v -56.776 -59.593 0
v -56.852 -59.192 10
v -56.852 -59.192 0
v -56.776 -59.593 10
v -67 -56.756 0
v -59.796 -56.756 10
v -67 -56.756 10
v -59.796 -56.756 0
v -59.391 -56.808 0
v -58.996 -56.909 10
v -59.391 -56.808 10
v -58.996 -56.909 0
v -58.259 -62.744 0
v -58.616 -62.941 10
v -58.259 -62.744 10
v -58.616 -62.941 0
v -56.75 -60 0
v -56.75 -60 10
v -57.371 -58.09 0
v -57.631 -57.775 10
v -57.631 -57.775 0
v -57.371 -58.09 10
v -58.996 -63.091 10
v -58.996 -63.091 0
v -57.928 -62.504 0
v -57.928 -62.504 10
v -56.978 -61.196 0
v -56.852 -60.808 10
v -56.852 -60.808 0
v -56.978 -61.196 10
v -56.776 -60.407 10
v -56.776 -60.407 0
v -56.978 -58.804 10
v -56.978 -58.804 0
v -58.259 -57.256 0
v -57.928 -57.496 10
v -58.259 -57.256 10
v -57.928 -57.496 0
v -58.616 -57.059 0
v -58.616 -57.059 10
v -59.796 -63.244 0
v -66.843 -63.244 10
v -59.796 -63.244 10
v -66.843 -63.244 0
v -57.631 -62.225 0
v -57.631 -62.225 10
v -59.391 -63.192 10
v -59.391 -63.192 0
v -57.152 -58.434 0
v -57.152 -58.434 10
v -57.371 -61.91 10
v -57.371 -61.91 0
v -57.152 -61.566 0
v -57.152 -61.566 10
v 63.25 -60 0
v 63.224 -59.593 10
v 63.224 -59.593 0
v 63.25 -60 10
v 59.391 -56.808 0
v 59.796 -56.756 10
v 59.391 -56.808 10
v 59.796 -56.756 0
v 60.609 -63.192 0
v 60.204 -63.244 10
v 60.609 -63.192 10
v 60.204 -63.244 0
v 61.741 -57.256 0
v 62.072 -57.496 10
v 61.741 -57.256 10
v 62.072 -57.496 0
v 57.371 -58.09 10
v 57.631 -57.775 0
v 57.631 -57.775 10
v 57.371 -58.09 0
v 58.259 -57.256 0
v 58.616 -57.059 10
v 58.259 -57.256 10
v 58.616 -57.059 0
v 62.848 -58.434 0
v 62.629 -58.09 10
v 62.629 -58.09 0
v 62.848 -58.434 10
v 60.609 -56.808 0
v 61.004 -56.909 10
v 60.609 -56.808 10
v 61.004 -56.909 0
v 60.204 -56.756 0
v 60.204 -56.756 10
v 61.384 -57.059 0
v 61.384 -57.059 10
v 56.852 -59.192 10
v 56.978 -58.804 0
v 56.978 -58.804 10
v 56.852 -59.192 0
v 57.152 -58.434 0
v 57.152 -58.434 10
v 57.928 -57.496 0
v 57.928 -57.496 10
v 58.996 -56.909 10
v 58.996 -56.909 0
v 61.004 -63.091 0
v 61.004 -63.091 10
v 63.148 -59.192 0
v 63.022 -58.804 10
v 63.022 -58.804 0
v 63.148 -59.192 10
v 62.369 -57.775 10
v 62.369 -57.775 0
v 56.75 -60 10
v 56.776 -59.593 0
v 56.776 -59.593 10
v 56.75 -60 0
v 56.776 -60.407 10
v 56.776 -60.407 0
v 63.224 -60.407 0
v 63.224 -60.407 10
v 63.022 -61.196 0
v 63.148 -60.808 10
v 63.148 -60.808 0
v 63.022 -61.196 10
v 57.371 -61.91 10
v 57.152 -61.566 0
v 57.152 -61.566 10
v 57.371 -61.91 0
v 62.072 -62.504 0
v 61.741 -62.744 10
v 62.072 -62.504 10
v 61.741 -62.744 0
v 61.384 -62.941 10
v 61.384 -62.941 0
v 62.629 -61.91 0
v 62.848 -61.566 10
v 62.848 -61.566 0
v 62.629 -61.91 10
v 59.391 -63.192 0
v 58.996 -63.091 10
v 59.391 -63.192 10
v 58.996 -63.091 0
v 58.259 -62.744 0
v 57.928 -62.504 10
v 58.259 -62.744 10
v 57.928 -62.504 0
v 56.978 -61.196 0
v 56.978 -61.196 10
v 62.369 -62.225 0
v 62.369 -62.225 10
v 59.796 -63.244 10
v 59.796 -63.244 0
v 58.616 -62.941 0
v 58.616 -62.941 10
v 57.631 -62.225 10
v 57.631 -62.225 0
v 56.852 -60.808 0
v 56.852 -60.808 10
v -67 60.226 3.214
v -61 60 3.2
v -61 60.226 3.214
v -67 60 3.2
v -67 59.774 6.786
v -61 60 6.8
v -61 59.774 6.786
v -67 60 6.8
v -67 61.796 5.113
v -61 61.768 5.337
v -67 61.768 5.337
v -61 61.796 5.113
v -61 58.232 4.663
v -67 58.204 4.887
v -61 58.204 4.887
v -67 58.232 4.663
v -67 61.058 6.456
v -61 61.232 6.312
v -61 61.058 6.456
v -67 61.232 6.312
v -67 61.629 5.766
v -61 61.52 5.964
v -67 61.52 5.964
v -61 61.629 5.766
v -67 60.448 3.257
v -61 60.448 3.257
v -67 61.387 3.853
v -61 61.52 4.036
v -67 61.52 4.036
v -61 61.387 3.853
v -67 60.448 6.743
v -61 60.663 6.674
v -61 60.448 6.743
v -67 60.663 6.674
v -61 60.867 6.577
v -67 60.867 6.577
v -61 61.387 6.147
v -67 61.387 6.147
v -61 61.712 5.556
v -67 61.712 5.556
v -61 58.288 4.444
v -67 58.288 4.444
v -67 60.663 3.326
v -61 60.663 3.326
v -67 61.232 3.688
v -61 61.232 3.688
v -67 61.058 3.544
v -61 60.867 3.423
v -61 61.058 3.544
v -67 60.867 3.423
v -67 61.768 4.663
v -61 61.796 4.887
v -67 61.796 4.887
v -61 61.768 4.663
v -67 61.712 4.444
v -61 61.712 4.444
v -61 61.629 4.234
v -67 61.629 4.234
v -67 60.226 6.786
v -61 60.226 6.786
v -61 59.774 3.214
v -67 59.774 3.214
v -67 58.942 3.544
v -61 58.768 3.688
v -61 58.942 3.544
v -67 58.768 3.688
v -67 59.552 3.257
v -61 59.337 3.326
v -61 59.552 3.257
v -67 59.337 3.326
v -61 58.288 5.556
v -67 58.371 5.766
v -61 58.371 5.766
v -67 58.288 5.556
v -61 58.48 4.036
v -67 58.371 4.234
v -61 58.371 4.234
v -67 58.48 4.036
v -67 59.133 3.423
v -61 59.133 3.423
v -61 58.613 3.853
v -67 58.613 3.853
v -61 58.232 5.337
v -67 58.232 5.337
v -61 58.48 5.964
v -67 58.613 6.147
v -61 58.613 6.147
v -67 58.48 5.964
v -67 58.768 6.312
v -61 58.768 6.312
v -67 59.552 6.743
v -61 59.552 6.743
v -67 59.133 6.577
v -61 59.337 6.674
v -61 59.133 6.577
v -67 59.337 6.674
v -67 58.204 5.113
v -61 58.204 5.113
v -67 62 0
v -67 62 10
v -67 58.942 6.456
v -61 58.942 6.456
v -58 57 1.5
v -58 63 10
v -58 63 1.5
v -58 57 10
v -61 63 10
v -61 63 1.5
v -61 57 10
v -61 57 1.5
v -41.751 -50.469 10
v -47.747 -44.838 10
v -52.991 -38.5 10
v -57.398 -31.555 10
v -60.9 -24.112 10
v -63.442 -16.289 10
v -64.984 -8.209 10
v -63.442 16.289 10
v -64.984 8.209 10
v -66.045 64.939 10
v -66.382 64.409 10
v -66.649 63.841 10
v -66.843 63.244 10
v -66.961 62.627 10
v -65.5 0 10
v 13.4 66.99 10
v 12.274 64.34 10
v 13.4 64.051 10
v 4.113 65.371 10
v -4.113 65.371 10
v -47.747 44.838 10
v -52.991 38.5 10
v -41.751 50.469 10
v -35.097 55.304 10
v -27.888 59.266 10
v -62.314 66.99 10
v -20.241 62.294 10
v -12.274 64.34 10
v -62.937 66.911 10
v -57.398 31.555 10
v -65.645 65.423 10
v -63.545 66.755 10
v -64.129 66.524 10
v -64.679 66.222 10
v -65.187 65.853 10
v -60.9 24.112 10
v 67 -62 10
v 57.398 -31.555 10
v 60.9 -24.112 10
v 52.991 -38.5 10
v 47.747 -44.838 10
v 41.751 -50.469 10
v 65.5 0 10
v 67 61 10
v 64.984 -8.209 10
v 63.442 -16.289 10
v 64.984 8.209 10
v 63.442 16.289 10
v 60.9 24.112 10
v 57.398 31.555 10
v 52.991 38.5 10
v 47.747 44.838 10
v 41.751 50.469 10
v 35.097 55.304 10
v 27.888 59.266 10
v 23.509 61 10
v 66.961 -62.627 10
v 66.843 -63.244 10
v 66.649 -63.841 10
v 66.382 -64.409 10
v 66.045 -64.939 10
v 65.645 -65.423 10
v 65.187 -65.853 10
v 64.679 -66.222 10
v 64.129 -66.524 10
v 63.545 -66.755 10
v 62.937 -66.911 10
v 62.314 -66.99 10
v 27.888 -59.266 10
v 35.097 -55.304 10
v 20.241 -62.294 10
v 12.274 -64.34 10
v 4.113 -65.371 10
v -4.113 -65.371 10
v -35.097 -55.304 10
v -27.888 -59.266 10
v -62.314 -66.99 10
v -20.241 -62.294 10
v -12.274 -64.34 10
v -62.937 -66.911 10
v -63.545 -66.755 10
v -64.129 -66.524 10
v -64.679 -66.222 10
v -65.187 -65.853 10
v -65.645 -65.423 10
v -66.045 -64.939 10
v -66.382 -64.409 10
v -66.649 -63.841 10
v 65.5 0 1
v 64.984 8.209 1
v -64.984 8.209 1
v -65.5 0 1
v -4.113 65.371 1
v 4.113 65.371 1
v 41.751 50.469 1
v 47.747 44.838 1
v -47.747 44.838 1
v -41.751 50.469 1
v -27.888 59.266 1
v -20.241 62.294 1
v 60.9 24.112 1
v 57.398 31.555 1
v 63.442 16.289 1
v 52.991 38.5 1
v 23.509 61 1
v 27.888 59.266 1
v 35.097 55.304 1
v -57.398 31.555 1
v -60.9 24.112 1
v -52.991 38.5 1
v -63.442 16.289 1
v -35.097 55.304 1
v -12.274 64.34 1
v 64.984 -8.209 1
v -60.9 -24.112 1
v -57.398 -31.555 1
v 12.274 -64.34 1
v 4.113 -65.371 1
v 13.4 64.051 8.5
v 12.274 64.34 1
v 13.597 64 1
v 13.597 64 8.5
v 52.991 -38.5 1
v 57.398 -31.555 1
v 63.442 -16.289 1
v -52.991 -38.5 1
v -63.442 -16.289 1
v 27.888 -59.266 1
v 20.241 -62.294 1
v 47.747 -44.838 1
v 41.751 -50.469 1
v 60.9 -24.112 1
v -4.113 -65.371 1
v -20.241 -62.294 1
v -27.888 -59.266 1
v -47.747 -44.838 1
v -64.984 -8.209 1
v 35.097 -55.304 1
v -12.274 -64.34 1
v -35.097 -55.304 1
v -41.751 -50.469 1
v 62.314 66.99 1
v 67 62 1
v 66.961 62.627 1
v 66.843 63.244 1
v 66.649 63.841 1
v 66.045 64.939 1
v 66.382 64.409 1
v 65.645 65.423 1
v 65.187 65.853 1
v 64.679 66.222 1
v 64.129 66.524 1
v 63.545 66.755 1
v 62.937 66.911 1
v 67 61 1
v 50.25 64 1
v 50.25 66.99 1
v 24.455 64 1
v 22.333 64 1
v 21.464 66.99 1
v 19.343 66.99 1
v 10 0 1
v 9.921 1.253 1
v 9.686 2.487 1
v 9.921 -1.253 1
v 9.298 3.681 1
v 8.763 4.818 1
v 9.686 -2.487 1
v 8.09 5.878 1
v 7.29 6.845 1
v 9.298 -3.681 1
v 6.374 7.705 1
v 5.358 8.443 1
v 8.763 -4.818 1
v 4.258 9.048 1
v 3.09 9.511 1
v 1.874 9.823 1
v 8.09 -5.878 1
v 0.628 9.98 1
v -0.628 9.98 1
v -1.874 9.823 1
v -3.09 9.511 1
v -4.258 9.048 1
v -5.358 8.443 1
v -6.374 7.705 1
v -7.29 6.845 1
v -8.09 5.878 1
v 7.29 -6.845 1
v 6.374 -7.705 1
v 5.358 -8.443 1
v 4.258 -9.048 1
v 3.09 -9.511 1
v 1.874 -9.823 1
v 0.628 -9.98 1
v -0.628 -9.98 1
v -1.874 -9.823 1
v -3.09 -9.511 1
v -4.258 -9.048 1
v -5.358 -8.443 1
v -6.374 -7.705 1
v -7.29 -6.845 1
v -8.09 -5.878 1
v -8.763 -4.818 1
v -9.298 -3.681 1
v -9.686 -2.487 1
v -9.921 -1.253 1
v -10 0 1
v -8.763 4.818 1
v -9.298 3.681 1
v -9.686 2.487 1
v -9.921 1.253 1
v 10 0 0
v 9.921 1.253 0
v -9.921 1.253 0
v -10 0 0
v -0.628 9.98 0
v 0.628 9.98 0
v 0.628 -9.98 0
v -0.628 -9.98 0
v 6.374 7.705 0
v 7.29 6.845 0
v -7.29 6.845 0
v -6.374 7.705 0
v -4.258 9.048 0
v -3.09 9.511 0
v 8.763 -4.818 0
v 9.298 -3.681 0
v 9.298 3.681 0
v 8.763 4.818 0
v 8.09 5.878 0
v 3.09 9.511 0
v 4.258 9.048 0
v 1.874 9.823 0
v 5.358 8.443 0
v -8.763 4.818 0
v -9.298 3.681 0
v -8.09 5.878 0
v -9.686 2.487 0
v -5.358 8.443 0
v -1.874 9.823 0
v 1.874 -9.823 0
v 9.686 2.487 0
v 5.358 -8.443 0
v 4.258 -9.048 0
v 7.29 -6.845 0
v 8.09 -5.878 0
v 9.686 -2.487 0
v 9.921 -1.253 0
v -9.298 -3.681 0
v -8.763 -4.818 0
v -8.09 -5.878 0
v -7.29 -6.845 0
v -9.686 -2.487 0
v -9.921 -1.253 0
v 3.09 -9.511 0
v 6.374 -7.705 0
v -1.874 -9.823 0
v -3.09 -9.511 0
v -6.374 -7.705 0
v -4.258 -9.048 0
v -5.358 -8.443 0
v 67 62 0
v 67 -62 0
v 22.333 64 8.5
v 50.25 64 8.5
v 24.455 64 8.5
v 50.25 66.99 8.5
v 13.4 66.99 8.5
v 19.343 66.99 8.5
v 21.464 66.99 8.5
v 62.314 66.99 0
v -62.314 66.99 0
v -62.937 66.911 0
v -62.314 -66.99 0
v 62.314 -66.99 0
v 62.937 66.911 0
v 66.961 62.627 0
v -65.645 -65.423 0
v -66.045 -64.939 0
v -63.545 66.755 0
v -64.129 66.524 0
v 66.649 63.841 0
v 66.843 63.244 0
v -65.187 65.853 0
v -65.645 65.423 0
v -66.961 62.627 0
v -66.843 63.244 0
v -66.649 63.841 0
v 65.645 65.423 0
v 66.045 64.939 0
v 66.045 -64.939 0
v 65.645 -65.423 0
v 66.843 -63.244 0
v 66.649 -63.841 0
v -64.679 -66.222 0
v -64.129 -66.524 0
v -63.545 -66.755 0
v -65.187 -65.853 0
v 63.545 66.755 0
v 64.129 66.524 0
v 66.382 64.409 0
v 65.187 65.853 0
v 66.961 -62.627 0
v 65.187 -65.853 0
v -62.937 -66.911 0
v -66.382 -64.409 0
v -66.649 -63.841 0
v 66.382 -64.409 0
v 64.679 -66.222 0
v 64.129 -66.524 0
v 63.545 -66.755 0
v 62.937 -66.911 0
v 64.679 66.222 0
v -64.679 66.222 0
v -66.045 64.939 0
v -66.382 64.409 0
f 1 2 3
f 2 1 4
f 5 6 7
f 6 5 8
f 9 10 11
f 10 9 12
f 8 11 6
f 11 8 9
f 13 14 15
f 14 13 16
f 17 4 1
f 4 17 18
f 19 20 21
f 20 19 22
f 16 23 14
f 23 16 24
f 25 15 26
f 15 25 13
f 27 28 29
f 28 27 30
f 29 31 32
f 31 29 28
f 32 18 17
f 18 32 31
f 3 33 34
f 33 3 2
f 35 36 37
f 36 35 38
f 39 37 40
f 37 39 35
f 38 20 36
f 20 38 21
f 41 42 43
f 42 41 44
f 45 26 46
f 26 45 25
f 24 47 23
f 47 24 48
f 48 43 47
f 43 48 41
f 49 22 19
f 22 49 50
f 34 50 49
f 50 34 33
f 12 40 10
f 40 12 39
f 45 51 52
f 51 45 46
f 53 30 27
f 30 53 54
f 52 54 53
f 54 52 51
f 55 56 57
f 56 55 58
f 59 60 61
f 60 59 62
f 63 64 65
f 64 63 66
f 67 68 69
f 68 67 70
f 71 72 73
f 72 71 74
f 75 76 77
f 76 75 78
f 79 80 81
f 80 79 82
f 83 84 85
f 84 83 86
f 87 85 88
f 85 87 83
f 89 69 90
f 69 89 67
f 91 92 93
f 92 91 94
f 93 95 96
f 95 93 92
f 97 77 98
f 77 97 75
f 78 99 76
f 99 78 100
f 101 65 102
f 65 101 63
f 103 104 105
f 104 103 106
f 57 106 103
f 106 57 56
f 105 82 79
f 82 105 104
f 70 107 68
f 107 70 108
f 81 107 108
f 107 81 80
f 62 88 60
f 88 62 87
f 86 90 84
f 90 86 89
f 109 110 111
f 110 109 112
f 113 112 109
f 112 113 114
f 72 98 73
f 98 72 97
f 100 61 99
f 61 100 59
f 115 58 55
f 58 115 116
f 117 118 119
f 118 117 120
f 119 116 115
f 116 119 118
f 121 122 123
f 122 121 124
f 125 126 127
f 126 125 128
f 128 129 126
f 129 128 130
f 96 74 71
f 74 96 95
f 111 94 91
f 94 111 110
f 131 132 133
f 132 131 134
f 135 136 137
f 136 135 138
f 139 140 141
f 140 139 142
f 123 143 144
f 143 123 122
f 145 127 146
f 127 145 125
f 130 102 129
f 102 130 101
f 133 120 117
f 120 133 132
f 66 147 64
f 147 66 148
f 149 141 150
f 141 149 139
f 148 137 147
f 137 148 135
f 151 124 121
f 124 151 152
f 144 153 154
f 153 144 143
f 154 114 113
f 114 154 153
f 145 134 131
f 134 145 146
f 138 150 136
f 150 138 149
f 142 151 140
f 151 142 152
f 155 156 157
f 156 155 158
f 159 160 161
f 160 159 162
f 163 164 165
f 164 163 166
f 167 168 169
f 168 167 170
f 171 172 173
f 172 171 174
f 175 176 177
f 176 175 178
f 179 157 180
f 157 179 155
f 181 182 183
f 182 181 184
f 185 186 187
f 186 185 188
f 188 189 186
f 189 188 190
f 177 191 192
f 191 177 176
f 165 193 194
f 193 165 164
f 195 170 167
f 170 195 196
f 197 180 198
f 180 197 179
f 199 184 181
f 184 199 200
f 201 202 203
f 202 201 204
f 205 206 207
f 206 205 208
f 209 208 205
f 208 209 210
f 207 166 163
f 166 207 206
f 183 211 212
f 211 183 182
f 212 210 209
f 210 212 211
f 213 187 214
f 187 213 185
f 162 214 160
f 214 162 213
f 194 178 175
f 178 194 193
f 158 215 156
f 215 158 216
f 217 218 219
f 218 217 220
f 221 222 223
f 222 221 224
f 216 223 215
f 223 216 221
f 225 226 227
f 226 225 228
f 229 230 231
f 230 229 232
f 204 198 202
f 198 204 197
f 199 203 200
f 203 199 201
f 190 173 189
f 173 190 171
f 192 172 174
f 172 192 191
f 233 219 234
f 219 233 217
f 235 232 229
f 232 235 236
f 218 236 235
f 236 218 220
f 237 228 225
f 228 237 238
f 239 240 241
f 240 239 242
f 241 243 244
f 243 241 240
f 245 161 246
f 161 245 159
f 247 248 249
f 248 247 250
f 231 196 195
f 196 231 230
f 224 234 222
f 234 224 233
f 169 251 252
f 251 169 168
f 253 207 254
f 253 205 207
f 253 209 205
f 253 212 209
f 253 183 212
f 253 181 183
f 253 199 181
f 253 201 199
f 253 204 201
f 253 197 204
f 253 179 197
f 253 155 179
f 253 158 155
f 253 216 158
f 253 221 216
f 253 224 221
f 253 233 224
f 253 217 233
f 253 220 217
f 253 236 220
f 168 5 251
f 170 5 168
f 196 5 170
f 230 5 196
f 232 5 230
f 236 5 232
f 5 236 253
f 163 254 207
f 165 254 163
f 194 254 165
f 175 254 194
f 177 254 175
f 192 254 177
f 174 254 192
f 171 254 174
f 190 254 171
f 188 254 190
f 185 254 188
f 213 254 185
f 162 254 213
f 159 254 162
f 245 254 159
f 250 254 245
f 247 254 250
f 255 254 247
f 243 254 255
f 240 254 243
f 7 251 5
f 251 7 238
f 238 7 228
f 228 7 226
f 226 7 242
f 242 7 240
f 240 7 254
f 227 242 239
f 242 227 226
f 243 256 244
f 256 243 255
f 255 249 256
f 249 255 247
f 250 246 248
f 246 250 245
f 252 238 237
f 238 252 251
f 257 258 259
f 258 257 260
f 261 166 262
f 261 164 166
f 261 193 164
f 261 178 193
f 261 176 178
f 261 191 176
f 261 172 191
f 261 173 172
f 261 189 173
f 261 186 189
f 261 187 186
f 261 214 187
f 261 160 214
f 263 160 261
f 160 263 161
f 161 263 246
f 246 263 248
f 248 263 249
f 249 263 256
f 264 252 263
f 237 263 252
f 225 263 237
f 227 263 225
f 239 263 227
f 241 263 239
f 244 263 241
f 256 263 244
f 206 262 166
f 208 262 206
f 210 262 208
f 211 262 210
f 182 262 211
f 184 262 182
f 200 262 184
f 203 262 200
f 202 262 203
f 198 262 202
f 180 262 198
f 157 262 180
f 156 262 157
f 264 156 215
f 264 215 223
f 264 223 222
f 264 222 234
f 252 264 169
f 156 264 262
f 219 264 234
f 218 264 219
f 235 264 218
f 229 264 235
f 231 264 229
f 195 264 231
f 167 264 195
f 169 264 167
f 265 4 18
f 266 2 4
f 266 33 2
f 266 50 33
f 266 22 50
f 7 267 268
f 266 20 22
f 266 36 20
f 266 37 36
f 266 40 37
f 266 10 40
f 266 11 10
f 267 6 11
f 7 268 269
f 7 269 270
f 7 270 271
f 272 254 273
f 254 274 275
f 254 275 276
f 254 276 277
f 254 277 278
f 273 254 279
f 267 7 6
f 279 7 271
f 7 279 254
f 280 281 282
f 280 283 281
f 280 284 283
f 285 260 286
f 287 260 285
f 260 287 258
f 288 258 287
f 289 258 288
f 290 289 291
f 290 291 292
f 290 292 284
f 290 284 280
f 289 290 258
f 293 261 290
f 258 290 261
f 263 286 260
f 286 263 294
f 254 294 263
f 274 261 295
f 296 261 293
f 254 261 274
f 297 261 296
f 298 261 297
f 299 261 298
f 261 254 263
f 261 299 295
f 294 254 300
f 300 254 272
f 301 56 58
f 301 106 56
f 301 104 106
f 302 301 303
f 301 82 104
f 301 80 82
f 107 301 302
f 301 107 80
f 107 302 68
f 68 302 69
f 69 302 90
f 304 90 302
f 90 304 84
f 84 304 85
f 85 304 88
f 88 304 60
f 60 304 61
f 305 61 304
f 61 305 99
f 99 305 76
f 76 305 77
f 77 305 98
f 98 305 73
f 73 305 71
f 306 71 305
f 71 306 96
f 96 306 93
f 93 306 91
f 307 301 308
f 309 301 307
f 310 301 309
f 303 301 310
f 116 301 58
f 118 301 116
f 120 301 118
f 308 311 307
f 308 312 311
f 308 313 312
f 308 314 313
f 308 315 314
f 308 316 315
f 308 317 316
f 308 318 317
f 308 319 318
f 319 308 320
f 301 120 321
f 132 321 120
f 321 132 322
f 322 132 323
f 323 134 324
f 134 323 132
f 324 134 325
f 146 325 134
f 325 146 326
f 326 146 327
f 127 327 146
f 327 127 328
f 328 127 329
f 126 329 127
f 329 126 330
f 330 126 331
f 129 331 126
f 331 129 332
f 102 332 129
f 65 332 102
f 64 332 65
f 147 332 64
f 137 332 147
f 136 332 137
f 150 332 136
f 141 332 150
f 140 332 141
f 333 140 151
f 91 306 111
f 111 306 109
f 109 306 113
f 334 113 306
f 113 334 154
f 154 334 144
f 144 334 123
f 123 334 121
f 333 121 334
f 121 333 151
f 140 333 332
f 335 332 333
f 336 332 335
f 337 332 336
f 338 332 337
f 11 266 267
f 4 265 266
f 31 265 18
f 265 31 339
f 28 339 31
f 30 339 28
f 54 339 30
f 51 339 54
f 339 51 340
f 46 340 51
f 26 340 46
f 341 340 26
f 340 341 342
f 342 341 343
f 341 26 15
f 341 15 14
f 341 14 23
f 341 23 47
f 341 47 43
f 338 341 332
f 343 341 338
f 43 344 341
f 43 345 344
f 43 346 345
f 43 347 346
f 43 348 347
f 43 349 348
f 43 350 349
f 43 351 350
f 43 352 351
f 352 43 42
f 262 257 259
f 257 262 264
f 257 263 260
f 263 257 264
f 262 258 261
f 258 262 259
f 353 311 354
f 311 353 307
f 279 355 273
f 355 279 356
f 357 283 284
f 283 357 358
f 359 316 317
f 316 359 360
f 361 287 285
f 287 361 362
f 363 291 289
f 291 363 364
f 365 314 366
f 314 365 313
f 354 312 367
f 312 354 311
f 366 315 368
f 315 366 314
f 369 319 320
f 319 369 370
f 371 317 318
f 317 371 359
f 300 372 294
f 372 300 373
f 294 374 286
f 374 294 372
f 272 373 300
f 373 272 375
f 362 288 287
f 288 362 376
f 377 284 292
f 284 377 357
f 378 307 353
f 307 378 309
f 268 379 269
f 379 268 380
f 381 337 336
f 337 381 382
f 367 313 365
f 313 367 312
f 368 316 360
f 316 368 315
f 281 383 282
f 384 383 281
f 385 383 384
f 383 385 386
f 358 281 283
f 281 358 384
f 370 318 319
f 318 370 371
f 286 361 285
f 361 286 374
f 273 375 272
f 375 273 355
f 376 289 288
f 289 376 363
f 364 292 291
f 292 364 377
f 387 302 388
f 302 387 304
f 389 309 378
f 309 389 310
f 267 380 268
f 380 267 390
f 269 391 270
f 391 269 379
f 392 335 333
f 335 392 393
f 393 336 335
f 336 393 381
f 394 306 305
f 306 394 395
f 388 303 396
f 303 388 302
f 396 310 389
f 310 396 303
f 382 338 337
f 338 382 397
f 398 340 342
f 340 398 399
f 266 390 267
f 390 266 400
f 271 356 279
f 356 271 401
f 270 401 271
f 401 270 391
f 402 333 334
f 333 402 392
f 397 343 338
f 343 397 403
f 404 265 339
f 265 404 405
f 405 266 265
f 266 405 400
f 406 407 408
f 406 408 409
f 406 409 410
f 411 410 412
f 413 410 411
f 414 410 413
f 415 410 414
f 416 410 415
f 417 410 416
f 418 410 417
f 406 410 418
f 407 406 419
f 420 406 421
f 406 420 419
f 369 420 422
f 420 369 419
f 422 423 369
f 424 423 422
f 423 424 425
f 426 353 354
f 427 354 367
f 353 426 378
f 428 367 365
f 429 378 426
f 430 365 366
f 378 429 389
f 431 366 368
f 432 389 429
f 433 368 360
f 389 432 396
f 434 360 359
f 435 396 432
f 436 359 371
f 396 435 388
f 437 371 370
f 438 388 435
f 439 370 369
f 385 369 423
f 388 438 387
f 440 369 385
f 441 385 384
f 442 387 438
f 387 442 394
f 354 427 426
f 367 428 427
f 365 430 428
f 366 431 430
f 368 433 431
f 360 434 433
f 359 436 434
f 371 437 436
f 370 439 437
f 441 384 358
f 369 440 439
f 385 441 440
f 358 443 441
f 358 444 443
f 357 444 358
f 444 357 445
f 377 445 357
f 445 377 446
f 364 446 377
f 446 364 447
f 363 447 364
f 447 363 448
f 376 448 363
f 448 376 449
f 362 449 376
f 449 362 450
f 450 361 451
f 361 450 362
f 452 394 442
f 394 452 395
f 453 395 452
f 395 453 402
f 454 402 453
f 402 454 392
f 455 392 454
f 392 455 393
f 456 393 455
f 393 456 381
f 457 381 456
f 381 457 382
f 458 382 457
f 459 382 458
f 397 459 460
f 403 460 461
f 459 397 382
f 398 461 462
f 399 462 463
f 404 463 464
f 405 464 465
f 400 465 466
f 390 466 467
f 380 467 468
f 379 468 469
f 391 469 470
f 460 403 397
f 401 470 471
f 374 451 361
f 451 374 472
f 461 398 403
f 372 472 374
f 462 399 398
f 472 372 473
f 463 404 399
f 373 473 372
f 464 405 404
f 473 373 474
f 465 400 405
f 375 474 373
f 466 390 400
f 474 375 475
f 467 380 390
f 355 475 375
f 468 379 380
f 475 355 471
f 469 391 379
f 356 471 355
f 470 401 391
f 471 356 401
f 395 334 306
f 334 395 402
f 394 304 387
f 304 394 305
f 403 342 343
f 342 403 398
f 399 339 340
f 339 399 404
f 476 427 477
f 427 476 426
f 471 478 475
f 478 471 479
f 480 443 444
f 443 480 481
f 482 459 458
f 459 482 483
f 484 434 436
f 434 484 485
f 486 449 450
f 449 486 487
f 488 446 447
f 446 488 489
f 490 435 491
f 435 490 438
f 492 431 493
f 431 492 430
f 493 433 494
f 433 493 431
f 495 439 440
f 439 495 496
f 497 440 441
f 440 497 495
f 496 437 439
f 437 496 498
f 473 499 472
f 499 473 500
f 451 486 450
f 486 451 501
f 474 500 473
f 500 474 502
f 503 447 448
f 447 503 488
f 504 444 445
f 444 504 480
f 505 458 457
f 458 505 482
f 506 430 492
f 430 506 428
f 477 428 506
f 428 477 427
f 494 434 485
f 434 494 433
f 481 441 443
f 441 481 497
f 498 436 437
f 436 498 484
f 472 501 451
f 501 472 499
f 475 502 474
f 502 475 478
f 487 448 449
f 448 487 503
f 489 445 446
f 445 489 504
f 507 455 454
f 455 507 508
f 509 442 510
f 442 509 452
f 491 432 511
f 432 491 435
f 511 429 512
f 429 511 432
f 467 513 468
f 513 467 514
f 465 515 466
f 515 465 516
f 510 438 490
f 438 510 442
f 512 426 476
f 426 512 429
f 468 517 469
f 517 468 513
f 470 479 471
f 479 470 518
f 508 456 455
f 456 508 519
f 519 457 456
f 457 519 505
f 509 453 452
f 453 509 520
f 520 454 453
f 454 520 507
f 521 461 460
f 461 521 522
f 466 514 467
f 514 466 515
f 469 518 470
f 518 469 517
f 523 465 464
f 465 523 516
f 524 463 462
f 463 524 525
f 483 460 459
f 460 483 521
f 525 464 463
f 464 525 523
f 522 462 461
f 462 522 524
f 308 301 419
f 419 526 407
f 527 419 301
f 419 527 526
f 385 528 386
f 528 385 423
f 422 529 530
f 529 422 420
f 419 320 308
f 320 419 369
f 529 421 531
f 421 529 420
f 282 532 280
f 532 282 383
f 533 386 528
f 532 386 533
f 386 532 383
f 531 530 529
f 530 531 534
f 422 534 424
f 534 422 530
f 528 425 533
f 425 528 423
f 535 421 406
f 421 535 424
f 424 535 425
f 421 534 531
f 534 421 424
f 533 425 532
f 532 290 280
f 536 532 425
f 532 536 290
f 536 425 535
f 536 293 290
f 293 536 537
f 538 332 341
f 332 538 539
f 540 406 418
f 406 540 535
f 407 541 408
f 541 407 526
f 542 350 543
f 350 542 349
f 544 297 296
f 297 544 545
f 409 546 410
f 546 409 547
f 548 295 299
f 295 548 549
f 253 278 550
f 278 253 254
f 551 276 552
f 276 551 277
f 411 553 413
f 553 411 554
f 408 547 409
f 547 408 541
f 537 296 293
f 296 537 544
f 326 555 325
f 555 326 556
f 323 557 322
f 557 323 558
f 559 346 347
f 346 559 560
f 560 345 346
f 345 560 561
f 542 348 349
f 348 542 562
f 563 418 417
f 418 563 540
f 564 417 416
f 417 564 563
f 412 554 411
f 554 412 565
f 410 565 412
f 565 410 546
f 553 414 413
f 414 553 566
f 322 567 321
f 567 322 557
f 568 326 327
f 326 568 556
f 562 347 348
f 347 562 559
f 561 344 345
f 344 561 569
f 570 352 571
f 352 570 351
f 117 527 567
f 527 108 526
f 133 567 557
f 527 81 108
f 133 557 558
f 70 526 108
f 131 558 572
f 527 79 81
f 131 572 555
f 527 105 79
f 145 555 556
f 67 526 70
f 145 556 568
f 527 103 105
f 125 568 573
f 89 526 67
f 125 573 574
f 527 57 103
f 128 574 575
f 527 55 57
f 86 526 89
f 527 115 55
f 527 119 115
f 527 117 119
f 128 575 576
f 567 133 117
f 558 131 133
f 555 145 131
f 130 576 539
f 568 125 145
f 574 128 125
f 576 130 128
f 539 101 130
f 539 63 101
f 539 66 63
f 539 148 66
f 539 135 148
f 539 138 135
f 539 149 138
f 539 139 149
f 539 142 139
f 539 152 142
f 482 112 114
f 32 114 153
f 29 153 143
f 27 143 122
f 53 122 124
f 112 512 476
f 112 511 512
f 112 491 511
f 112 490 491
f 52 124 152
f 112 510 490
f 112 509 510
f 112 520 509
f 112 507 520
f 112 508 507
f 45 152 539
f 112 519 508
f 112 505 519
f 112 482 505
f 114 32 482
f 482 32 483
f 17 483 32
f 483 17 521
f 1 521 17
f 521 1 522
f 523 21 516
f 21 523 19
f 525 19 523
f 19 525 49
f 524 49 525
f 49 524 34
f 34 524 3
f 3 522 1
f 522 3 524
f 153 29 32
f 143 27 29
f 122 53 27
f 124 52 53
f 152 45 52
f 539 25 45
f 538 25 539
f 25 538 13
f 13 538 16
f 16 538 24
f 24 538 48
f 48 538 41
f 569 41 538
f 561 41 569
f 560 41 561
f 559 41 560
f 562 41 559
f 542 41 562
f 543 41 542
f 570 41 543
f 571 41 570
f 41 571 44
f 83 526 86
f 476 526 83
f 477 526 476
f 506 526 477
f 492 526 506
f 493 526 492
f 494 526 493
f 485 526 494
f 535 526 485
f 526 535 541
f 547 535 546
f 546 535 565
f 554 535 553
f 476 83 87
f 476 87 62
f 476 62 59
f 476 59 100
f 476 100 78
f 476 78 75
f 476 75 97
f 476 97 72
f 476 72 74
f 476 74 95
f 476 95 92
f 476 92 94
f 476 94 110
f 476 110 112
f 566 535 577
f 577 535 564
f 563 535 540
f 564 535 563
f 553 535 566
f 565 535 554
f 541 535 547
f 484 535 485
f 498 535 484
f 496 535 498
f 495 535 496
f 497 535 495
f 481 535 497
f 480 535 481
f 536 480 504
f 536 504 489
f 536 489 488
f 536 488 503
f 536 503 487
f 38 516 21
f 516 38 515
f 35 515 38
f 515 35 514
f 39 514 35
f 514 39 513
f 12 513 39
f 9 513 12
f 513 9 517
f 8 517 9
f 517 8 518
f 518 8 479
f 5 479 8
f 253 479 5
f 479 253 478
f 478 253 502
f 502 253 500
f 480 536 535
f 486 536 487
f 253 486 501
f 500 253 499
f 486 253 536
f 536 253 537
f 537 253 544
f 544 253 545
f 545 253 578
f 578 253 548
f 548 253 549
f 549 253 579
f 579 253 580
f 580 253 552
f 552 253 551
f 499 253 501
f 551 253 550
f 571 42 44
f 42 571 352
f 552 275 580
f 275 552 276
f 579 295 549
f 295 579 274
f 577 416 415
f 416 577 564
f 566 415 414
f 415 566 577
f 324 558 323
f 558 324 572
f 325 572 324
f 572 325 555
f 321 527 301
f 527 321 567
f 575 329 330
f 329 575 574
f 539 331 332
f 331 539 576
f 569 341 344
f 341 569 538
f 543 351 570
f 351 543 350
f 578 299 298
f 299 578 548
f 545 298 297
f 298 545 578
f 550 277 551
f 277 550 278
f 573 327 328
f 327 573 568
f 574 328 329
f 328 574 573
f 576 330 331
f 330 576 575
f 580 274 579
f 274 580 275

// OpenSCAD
$fn = 50;


difference() {
	union() {
		translate(v = [0, 0, 0]) {
			rotate(a = [0, 0, 0]) {
				hull() {
					translate(v = [-62.0000000000, 62.0000000000, 0]) {
						rotate(a = [0, 0, 0]) {
							translate(v = [0, 0, 0]) {
								rotate(a = [0, 0, 0]) {
									cylinder(h = 10, r = 5);
								}
							}
						}
					}
					translate(v = [62.0000000000, 62.0000000000, 0]) {
						rotate(a = [0, 0, 0]) {
							translate(v = [0, 0, 0]) {
								rotate(a = [0, 0, 0]) {
									cylinder(h = 10, r = 5);
								}
							}
						}
					}
					translate(v = [-62.0000000000, -62.0000000000, 0]) {
						rotate(a = [0, 0, 0]) {
							translate(v = [0, 0, 0]) {
								rotate(a = [0, 0, 0]) {
									cylinder(h = 10, r = 5);
								}
							}
						}
					}
					translate(v = [62.0000000000, -62.0000000000, 0]) {
						rotate(a = [0, 0, 0]) {
							translate(v = [0, 0, 0]) {
								rotate(a = [0, 0, 0]) {
									cylinder(h = 10, r = 5);
								}
							}
						}
					}
				}
			}
		}
	}
	union() {
		translate(v = [-67.5000000000, -60.0000000000, -125]) {
			rotate(a = [0, 0, 0]) {
				hull() {
					translate(v = [7.5000000000, 0, 0]) {
						rotate(a = [0, 0, 0]) {
							translate(v = [0, 0, 0]) {
								rotate(a = [0, 0, 0]) {
									cylinder(h = 250, r = 3.2500000000);
								}
							}
						}
					}
					translate(v = [-7.5000000000, 0, 0]) {
						rotate(a = [0, 0, 0]) {
							translate(v = [0, 0, 0]) {
								rotate(a = [0, 0, 0]) {
									cylinder(h = 250, r = 3.2500000000);
								}
							}
						}
					}
				}
			}
		}
		translate(v = [60.0000000000, -60.0000000000, -125.0000000000]) {
			rotate(a = [0, 0, 0]) {
				cylinder(h = 250, r = 3.2500000000);
			}
		}
		translate(v = [-67.0000000000, 60.0000000000, 5.0000000000]) {
			rotate(a = [0, 90, 0]) {
				cylinder(h = 9, r = 1.8000000000);
			}
		}
		translate(v = [-61.0000000000, 57.0000000000, 1.5000000000]) {
			rotate(a = [0, 0, 0]) {
				cube(size = [3, 6, 8.5000000000]);
			}
		}
		translate(v = [0, 0, 1.0000000000]) {
			rotate(a = [0, 0, 0]) {
				cylinder(h = 12, r = 65.5000000000);
			}
		}
		translate(v = [0, 0, -5.0000000000]) {
			rotate(a = [0, 0, 0]) {
				cylinder(h = 10, r = 10.0000000000);
			}
		}
		translate(v = [0.0000000000, 61.0000000000, 1]) {
			rotate(a = [0, 0, 0]) {
				cube(size = [67.0000000000, 3, 12]);
			}
		}
		translate(v = [50.2500000000, 61.0000000000, 1]) {
			rotate(a = [0, 0, 0]) {
				cube(size = [16.7500000000, 6, 12]);
			}
		}
		translate(v = [13.4000000000, 61.0000000000, 8.5000000000]) {
			rotate(a = [0, 0, 0]) {
				cube(size = [53.6000000000, 6, 1.5000000000]);
			}
		}
		translate(v = [18.5833333333, 67.7500000000, 1]) {
			rotate(a = [0, 0, -45]) {
				cube(size = [7.5000000000, 1.5000000000, 12]);
			}
		}
	}
}
